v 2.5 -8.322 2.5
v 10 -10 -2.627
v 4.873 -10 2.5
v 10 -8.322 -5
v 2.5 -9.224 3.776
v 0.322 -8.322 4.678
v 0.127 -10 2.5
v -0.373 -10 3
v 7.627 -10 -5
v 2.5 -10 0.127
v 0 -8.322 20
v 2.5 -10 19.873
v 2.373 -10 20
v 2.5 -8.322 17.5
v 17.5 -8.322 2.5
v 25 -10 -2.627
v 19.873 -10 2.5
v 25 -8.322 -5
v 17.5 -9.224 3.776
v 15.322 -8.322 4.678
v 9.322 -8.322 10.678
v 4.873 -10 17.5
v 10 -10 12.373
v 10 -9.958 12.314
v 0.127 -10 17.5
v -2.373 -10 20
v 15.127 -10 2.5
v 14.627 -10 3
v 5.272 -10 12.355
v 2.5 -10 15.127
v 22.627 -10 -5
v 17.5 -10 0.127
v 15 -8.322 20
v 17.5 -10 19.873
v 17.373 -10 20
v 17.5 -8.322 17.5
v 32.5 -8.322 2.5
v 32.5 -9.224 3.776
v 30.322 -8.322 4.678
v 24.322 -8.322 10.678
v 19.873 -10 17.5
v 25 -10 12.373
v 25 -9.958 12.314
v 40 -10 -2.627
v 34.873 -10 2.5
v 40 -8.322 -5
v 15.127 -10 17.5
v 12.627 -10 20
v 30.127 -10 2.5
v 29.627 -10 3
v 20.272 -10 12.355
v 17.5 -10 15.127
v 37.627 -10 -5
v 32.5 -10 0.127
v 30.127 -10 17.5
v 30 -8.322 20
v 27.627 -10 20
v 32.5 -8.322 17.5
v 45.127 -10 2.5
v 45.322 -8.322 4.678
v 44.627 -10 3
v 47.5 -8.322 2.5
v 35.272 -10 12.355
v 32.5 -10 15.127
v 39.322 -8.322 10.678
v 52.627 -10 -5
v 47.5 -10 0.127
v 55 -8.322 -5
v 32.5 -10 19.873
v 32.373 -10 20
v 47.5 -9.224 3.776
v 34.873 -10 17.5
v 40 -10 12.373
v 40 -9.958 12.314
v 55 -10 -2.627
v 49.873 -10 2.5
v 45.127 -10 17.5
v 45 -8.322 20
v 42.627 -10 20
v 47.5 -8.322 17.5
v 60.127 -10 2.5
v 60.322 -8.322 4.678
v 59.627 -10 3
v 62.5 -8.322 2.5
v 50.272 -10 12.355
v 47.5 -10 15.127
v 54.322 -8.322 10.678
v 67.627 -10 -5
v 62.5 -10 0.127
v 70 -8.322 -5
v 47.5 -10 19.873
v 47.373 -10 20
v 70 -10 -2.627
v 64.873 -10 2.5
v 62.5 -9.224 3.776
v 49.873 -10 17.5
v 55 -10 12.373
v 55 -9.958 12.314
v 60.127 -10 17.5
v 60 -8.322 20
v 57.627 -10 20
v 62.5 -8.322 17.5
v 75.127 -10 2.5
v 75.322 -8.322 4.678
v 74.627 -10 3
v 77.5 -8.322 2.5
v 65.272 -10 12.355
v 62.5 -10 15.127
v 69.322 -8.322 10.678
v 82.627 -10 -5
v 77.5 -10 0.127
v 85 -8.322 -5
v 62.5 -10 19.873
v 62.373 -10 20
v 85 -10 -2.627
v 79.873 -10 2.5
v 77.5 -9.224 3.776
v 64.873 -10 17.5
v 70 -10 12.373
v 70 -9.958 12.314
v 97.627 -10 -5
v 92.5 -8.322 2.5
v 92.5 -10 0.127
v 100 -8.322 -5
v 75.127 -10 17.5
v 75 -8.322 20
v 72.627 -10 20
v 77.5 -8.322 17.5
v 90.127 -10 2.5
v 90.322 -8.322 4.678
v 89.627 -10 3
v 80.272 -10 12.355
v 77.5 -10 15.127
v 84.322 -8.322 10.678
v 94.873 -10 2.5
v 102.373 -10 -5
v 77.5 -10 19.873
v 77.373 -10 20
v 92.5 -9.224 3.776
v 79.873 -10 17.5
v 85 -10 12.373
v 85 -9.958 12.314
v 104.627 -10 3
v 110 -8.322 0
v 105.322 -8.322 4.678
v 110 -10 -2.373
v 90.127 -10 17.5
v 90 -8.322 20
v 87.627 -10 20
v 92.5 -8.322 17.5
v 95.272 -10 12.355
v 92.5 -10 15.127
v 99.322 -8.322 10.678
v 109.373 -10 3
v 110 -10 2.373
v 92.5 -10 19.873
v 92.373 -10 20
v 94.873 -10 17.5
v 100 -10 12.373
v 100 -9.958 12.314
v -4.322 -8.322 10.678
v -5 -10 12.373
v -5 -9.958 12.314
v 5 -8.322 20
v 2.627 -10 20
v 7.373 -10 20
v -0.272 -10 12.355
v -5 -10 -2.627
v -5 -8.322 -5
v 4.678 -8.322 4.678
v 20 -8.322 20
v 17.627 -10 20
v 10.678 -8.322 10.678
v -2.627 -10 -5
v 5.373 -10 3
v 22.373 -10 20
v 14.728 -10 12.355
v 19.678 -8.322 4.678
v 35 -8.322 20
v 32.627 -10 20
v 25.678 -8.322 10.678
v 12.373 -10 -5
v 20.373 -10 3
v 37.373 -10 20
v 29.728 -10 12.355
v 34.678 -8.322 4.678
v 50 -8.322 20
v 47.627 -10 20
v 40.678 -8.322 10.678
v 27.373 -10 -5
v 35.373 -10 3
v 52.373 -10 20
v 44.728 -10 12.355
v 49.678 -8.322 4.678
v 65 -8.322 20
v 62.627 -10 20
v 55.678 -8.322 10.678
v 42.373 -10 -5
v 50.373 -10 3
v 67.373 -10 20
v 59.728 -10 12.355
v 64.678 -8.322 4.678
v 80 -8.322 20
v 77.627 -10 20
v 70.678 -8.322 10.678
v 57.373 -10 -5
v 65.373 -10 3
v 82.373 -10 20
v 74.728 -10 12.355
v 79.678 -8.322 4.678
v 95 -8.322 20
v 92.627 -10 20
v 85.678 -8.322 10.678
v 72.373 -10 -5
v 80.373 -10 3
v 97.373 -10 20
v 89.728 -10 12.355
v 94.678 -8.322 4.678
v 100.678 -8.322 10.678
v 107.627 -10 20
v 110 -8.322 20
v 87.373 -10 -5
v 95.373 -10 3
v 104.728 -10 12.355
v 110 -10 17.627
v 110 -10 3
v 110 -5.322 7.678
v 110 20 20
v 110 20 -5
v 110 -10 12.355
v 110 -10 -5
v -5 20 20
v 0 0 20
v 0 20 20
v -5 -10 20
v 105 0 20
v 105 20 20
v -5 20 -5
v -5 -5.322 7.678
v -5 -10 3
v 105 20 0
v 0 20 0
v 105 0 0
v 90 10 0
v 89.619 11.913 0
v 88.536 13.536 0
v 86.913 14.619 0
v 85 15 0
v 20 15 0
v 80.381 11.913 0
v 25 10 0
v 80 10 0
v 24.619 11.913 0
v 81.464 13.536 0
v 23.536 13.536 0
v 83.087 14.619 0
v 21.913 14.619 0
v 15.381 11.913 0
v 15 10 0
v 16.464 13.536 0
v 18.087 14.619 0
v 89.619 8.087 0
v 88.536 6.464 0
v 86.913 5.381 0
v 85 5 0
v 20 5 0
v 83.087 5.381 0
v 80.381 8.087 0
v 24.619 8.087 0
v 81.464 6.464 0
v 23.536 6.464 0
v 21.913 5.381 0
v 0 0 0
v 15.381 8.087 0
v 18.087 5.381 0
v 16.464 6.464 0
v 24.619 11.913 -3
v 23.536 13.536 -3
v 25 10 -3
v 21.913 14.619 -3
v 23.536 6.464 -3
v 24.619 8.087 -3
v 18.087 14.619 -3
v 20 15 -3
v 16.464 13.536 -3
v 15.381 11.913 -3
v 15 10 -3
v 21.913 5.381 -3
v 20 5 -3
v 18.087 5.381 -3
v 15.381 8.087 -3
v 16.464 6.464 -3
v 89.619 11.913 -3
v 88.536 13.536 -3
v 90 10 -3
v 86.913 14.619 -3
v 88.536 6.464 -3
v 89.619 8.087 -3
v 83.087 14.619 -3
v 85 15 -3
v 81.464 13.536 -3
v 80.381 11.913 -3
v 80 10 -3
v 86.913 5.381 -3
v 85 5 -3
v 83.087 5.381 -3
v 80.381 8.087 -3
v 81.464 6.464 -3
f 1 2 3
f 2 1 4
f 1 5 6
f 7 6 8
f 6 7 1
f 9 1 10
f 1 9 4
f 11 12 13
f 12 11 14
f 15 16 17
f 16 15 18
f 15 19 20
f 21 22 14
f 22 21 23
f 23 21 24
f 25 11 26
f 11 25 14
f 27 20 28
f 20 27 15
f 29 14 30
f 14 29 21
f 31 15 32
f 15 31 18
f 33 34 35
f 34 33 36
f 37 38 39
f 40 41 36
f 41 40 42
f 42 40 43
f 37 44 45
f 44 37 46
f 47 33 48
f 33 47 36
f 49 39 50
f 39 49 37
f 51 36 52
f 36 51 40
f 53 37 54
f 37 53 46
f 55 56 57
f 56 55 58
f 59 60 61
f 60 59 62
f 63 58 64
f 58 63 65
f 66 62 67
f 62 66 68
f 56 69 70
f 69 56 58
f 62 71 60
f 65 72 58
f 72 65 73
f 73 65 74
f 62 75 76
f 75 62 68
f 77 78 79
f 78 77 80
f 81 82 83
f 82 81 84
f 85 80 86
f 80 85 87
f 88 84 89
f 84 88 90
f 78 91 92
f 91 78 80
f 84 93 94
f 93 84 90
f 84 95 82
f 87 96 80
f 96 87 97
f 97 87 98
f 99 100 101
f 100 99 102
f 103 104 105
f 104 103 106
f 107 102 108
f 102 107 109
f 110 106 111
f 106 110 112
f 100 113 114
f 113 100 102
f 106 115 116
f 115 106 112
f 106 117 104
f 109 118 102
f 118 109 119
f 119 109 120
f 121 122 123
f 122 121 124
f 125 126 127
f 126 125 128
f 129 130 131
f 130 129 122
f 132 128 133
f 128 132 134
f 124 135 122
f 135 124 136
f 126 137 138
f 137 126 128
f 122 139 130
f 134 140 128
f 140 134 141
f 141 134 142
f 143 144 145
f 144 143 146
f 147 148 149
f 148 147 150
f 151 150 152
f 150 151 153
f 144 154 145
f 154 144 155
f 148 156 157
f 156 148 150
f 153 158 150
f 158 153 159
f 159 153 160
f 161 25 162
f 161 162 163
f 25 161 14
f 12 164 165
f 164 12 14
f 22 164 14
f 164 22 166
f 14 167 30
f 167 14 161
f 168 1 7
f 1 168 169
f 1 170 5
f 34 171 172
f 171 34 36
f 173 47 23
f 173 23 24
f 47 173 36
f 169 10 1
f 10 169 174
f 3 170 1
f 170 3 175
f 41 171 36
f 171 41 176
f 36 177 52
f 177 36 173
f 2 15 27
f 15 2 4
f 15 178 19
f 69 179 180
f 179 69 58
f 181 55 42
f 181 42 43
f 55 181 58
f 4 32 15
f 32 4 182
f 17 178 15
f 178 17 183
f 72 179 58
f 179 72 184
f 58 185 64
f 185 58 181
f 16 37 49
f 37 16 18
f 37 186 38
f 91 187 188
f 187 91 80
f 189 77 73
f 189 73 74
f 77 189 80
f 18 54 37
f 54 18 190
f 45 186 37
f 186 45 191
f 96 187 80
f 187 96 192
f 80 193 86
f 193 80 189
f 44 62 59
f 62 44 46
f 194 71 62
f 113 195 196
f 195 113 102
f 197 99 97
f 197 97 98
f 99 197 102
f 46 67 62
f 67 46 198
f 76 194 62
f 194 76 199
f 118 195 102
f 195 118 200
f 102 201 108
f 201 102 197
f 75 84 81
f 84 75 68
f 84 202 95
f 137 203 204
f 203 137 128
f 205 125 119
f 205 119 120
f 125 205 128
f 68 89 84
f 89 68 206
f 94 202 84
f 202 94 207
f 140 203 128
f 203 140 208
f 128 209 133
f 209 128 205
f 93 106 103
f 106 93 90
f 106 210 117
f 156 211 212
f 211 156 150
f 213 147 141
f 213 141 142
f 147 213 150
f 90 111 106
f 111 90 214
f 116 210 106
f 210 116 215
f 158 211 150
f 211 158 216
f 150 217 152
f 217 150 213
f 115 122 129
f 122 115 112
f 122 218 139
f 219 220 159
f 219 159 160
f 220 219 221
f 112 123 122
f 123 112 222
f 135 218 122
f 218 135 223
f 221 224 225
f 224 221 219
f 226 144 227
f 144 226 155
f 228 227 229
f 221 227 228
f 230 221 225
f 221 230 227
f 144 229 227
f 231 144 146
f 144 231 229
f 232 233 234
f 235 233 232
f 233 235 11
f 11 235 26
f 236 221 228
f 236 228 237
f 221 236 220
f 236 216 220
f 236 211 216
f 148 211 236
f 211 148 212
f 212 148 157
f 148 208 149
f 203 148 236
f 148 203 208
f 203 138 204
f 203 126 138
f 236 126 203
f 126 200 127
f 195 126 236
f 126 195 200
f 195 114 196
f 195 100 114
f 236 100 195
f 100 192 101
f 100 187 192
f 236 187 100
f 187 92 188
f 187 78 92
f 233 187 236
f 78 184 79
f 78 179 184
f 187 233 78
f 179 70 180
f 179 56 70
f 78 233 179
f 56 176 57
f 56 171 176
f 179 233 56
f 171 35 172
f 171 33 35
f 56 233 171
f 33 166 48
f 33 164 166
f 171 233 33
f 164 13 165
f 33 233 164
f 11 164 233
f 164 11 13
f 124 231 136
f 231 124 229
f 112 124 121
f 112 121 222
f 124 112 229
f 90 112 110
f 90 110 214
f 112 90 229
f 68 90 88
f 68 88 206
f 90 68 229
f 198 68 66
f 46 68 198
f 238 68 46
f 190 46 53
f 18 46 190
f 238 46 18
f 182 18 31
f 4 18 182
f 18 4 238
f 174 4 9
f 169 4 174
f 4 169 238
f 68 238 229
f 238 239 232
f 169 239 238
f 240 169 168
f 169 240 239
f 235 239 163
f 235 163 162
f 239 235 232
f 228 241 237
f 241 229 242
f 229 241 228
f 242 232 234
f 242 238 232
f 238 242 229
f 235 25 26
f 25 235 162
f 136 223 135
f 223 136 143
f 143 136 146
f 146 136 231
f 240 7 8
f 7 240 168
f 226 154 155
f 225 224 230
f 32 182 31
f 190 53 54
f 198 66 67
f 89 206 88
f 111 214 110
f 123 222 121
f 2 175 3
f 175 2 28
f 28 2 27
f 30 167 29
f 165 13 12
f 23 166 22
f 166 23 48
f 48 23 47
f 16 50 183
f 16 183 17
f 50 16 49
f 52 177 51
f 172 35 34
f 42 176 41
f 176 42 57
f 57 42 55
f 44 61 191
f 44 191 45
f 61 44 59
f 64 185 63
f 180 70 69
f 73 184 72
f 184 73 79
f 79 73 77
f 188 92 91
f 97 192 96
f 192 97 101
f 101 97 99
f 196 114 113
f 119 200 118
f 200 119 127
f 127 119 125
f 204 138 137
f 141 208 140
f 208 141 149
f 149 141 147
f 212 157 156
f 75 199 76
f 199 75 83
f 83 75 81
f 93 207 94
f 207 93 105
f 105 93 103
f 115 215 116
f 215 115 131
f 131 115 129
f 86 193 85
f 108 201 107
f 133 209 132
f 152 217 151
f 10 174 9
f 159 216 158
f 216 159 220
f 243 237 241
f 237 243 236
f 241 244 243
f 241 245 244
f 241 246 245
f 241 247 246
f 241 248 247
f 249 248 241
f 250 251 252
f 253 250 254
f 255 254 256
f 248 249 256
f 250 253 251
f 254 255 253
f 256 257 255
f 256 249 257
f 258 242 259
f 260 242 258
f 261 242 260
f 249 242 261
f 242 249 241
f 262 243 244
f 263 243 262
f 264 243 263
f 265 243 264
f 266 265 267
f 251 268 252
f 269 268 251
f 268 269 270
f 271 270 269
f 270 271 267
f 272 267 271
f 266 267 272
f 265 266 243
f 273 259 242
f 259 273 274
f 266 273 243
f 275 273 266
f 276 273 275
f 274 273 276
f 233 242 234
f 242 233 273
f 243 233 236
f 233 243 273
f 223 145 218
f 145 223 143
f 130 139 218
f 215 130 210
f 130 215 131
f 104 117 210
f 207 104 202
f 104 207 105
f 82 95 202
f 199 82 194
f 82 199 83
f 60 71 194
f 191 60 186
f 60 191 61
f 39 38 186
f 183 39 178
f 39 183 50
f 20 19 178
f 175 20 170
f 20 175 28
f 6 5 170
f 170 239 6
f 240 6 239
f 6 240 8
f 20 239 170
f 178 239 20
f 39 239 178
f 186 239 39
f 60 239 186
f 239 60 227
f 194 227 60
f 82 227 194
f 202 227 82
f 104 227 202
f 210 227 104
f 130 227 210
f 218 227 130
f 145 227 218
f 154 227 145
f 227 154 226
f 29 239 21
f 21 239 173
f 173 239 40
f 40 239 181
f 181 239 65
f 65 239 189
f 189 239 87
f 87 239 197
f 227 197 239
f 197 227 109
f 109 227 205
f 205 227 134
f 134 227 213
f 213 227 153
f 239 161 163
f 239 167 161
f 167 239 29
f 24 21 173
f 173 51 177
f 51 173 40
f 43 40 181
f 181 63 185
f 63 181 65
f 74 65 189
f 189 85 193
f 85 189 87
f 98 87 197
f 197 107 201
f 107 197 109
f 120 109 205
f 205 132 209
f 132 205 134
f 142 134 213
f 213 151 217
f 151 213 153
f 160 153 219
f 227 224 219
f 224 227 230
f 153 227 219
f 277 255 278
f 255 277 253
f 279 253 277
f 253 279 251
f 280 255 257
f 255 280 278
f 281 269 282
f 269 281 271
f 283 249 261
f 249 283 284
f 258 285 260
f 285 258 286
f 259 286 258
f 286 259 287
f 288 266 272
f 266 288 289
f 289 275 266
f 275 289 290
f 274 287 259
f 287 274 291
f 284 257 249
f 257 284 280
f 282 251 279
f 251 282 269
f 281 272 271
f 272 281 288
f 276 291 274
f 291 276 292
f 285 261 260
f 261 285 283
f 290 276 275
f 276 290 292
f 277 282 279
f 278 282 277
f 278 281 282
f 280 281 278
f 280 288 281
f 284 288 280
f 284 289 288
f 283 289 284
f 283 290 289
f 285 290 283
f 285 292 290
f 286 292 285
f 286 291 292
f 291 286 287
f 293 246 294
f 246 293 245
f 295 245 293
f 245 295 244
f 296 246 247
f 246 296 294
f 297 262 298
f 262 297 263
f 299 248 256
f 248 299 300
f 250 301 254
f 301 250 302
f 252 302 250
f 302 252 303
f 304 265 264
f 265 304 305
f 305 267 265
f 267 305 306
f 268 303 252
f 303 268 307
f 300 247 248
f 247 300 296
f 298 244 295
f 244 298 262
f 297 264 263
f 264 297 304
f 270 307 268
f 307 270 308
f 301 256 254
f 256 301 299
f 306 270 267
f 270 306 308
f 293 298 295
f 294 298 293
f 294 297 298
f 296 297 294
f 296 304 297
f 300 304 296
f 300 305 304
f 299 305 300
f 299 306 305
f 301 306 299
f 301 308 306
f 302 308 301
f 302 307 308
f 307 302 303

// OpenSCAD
// Ver 0.0.0
module body() {
    difference() {
        translate([-5,-10,-5])
            cube([115,30,25]);
        cube([105,25,25]);
        translate([-10,-23,-10])
            rotate([45,0,0])
                cube([125,25,25]);
        translate([20,10,-3])
            cylinder(h = 20, d = 10);
        translate([85,10,-3])
            cylinder(h = 20, d = 10);
        for (a =[-10:15:100])
            translate([a - 60,-26,50])
                rotate([45,45,0])
                    cube([125,25,25]);
        for (a =[-10:15:100])
            translate([a - 30,-26,-50])
                rotate([45,-45,0])
                    cube([125,25,25]);
    };
};

body();
